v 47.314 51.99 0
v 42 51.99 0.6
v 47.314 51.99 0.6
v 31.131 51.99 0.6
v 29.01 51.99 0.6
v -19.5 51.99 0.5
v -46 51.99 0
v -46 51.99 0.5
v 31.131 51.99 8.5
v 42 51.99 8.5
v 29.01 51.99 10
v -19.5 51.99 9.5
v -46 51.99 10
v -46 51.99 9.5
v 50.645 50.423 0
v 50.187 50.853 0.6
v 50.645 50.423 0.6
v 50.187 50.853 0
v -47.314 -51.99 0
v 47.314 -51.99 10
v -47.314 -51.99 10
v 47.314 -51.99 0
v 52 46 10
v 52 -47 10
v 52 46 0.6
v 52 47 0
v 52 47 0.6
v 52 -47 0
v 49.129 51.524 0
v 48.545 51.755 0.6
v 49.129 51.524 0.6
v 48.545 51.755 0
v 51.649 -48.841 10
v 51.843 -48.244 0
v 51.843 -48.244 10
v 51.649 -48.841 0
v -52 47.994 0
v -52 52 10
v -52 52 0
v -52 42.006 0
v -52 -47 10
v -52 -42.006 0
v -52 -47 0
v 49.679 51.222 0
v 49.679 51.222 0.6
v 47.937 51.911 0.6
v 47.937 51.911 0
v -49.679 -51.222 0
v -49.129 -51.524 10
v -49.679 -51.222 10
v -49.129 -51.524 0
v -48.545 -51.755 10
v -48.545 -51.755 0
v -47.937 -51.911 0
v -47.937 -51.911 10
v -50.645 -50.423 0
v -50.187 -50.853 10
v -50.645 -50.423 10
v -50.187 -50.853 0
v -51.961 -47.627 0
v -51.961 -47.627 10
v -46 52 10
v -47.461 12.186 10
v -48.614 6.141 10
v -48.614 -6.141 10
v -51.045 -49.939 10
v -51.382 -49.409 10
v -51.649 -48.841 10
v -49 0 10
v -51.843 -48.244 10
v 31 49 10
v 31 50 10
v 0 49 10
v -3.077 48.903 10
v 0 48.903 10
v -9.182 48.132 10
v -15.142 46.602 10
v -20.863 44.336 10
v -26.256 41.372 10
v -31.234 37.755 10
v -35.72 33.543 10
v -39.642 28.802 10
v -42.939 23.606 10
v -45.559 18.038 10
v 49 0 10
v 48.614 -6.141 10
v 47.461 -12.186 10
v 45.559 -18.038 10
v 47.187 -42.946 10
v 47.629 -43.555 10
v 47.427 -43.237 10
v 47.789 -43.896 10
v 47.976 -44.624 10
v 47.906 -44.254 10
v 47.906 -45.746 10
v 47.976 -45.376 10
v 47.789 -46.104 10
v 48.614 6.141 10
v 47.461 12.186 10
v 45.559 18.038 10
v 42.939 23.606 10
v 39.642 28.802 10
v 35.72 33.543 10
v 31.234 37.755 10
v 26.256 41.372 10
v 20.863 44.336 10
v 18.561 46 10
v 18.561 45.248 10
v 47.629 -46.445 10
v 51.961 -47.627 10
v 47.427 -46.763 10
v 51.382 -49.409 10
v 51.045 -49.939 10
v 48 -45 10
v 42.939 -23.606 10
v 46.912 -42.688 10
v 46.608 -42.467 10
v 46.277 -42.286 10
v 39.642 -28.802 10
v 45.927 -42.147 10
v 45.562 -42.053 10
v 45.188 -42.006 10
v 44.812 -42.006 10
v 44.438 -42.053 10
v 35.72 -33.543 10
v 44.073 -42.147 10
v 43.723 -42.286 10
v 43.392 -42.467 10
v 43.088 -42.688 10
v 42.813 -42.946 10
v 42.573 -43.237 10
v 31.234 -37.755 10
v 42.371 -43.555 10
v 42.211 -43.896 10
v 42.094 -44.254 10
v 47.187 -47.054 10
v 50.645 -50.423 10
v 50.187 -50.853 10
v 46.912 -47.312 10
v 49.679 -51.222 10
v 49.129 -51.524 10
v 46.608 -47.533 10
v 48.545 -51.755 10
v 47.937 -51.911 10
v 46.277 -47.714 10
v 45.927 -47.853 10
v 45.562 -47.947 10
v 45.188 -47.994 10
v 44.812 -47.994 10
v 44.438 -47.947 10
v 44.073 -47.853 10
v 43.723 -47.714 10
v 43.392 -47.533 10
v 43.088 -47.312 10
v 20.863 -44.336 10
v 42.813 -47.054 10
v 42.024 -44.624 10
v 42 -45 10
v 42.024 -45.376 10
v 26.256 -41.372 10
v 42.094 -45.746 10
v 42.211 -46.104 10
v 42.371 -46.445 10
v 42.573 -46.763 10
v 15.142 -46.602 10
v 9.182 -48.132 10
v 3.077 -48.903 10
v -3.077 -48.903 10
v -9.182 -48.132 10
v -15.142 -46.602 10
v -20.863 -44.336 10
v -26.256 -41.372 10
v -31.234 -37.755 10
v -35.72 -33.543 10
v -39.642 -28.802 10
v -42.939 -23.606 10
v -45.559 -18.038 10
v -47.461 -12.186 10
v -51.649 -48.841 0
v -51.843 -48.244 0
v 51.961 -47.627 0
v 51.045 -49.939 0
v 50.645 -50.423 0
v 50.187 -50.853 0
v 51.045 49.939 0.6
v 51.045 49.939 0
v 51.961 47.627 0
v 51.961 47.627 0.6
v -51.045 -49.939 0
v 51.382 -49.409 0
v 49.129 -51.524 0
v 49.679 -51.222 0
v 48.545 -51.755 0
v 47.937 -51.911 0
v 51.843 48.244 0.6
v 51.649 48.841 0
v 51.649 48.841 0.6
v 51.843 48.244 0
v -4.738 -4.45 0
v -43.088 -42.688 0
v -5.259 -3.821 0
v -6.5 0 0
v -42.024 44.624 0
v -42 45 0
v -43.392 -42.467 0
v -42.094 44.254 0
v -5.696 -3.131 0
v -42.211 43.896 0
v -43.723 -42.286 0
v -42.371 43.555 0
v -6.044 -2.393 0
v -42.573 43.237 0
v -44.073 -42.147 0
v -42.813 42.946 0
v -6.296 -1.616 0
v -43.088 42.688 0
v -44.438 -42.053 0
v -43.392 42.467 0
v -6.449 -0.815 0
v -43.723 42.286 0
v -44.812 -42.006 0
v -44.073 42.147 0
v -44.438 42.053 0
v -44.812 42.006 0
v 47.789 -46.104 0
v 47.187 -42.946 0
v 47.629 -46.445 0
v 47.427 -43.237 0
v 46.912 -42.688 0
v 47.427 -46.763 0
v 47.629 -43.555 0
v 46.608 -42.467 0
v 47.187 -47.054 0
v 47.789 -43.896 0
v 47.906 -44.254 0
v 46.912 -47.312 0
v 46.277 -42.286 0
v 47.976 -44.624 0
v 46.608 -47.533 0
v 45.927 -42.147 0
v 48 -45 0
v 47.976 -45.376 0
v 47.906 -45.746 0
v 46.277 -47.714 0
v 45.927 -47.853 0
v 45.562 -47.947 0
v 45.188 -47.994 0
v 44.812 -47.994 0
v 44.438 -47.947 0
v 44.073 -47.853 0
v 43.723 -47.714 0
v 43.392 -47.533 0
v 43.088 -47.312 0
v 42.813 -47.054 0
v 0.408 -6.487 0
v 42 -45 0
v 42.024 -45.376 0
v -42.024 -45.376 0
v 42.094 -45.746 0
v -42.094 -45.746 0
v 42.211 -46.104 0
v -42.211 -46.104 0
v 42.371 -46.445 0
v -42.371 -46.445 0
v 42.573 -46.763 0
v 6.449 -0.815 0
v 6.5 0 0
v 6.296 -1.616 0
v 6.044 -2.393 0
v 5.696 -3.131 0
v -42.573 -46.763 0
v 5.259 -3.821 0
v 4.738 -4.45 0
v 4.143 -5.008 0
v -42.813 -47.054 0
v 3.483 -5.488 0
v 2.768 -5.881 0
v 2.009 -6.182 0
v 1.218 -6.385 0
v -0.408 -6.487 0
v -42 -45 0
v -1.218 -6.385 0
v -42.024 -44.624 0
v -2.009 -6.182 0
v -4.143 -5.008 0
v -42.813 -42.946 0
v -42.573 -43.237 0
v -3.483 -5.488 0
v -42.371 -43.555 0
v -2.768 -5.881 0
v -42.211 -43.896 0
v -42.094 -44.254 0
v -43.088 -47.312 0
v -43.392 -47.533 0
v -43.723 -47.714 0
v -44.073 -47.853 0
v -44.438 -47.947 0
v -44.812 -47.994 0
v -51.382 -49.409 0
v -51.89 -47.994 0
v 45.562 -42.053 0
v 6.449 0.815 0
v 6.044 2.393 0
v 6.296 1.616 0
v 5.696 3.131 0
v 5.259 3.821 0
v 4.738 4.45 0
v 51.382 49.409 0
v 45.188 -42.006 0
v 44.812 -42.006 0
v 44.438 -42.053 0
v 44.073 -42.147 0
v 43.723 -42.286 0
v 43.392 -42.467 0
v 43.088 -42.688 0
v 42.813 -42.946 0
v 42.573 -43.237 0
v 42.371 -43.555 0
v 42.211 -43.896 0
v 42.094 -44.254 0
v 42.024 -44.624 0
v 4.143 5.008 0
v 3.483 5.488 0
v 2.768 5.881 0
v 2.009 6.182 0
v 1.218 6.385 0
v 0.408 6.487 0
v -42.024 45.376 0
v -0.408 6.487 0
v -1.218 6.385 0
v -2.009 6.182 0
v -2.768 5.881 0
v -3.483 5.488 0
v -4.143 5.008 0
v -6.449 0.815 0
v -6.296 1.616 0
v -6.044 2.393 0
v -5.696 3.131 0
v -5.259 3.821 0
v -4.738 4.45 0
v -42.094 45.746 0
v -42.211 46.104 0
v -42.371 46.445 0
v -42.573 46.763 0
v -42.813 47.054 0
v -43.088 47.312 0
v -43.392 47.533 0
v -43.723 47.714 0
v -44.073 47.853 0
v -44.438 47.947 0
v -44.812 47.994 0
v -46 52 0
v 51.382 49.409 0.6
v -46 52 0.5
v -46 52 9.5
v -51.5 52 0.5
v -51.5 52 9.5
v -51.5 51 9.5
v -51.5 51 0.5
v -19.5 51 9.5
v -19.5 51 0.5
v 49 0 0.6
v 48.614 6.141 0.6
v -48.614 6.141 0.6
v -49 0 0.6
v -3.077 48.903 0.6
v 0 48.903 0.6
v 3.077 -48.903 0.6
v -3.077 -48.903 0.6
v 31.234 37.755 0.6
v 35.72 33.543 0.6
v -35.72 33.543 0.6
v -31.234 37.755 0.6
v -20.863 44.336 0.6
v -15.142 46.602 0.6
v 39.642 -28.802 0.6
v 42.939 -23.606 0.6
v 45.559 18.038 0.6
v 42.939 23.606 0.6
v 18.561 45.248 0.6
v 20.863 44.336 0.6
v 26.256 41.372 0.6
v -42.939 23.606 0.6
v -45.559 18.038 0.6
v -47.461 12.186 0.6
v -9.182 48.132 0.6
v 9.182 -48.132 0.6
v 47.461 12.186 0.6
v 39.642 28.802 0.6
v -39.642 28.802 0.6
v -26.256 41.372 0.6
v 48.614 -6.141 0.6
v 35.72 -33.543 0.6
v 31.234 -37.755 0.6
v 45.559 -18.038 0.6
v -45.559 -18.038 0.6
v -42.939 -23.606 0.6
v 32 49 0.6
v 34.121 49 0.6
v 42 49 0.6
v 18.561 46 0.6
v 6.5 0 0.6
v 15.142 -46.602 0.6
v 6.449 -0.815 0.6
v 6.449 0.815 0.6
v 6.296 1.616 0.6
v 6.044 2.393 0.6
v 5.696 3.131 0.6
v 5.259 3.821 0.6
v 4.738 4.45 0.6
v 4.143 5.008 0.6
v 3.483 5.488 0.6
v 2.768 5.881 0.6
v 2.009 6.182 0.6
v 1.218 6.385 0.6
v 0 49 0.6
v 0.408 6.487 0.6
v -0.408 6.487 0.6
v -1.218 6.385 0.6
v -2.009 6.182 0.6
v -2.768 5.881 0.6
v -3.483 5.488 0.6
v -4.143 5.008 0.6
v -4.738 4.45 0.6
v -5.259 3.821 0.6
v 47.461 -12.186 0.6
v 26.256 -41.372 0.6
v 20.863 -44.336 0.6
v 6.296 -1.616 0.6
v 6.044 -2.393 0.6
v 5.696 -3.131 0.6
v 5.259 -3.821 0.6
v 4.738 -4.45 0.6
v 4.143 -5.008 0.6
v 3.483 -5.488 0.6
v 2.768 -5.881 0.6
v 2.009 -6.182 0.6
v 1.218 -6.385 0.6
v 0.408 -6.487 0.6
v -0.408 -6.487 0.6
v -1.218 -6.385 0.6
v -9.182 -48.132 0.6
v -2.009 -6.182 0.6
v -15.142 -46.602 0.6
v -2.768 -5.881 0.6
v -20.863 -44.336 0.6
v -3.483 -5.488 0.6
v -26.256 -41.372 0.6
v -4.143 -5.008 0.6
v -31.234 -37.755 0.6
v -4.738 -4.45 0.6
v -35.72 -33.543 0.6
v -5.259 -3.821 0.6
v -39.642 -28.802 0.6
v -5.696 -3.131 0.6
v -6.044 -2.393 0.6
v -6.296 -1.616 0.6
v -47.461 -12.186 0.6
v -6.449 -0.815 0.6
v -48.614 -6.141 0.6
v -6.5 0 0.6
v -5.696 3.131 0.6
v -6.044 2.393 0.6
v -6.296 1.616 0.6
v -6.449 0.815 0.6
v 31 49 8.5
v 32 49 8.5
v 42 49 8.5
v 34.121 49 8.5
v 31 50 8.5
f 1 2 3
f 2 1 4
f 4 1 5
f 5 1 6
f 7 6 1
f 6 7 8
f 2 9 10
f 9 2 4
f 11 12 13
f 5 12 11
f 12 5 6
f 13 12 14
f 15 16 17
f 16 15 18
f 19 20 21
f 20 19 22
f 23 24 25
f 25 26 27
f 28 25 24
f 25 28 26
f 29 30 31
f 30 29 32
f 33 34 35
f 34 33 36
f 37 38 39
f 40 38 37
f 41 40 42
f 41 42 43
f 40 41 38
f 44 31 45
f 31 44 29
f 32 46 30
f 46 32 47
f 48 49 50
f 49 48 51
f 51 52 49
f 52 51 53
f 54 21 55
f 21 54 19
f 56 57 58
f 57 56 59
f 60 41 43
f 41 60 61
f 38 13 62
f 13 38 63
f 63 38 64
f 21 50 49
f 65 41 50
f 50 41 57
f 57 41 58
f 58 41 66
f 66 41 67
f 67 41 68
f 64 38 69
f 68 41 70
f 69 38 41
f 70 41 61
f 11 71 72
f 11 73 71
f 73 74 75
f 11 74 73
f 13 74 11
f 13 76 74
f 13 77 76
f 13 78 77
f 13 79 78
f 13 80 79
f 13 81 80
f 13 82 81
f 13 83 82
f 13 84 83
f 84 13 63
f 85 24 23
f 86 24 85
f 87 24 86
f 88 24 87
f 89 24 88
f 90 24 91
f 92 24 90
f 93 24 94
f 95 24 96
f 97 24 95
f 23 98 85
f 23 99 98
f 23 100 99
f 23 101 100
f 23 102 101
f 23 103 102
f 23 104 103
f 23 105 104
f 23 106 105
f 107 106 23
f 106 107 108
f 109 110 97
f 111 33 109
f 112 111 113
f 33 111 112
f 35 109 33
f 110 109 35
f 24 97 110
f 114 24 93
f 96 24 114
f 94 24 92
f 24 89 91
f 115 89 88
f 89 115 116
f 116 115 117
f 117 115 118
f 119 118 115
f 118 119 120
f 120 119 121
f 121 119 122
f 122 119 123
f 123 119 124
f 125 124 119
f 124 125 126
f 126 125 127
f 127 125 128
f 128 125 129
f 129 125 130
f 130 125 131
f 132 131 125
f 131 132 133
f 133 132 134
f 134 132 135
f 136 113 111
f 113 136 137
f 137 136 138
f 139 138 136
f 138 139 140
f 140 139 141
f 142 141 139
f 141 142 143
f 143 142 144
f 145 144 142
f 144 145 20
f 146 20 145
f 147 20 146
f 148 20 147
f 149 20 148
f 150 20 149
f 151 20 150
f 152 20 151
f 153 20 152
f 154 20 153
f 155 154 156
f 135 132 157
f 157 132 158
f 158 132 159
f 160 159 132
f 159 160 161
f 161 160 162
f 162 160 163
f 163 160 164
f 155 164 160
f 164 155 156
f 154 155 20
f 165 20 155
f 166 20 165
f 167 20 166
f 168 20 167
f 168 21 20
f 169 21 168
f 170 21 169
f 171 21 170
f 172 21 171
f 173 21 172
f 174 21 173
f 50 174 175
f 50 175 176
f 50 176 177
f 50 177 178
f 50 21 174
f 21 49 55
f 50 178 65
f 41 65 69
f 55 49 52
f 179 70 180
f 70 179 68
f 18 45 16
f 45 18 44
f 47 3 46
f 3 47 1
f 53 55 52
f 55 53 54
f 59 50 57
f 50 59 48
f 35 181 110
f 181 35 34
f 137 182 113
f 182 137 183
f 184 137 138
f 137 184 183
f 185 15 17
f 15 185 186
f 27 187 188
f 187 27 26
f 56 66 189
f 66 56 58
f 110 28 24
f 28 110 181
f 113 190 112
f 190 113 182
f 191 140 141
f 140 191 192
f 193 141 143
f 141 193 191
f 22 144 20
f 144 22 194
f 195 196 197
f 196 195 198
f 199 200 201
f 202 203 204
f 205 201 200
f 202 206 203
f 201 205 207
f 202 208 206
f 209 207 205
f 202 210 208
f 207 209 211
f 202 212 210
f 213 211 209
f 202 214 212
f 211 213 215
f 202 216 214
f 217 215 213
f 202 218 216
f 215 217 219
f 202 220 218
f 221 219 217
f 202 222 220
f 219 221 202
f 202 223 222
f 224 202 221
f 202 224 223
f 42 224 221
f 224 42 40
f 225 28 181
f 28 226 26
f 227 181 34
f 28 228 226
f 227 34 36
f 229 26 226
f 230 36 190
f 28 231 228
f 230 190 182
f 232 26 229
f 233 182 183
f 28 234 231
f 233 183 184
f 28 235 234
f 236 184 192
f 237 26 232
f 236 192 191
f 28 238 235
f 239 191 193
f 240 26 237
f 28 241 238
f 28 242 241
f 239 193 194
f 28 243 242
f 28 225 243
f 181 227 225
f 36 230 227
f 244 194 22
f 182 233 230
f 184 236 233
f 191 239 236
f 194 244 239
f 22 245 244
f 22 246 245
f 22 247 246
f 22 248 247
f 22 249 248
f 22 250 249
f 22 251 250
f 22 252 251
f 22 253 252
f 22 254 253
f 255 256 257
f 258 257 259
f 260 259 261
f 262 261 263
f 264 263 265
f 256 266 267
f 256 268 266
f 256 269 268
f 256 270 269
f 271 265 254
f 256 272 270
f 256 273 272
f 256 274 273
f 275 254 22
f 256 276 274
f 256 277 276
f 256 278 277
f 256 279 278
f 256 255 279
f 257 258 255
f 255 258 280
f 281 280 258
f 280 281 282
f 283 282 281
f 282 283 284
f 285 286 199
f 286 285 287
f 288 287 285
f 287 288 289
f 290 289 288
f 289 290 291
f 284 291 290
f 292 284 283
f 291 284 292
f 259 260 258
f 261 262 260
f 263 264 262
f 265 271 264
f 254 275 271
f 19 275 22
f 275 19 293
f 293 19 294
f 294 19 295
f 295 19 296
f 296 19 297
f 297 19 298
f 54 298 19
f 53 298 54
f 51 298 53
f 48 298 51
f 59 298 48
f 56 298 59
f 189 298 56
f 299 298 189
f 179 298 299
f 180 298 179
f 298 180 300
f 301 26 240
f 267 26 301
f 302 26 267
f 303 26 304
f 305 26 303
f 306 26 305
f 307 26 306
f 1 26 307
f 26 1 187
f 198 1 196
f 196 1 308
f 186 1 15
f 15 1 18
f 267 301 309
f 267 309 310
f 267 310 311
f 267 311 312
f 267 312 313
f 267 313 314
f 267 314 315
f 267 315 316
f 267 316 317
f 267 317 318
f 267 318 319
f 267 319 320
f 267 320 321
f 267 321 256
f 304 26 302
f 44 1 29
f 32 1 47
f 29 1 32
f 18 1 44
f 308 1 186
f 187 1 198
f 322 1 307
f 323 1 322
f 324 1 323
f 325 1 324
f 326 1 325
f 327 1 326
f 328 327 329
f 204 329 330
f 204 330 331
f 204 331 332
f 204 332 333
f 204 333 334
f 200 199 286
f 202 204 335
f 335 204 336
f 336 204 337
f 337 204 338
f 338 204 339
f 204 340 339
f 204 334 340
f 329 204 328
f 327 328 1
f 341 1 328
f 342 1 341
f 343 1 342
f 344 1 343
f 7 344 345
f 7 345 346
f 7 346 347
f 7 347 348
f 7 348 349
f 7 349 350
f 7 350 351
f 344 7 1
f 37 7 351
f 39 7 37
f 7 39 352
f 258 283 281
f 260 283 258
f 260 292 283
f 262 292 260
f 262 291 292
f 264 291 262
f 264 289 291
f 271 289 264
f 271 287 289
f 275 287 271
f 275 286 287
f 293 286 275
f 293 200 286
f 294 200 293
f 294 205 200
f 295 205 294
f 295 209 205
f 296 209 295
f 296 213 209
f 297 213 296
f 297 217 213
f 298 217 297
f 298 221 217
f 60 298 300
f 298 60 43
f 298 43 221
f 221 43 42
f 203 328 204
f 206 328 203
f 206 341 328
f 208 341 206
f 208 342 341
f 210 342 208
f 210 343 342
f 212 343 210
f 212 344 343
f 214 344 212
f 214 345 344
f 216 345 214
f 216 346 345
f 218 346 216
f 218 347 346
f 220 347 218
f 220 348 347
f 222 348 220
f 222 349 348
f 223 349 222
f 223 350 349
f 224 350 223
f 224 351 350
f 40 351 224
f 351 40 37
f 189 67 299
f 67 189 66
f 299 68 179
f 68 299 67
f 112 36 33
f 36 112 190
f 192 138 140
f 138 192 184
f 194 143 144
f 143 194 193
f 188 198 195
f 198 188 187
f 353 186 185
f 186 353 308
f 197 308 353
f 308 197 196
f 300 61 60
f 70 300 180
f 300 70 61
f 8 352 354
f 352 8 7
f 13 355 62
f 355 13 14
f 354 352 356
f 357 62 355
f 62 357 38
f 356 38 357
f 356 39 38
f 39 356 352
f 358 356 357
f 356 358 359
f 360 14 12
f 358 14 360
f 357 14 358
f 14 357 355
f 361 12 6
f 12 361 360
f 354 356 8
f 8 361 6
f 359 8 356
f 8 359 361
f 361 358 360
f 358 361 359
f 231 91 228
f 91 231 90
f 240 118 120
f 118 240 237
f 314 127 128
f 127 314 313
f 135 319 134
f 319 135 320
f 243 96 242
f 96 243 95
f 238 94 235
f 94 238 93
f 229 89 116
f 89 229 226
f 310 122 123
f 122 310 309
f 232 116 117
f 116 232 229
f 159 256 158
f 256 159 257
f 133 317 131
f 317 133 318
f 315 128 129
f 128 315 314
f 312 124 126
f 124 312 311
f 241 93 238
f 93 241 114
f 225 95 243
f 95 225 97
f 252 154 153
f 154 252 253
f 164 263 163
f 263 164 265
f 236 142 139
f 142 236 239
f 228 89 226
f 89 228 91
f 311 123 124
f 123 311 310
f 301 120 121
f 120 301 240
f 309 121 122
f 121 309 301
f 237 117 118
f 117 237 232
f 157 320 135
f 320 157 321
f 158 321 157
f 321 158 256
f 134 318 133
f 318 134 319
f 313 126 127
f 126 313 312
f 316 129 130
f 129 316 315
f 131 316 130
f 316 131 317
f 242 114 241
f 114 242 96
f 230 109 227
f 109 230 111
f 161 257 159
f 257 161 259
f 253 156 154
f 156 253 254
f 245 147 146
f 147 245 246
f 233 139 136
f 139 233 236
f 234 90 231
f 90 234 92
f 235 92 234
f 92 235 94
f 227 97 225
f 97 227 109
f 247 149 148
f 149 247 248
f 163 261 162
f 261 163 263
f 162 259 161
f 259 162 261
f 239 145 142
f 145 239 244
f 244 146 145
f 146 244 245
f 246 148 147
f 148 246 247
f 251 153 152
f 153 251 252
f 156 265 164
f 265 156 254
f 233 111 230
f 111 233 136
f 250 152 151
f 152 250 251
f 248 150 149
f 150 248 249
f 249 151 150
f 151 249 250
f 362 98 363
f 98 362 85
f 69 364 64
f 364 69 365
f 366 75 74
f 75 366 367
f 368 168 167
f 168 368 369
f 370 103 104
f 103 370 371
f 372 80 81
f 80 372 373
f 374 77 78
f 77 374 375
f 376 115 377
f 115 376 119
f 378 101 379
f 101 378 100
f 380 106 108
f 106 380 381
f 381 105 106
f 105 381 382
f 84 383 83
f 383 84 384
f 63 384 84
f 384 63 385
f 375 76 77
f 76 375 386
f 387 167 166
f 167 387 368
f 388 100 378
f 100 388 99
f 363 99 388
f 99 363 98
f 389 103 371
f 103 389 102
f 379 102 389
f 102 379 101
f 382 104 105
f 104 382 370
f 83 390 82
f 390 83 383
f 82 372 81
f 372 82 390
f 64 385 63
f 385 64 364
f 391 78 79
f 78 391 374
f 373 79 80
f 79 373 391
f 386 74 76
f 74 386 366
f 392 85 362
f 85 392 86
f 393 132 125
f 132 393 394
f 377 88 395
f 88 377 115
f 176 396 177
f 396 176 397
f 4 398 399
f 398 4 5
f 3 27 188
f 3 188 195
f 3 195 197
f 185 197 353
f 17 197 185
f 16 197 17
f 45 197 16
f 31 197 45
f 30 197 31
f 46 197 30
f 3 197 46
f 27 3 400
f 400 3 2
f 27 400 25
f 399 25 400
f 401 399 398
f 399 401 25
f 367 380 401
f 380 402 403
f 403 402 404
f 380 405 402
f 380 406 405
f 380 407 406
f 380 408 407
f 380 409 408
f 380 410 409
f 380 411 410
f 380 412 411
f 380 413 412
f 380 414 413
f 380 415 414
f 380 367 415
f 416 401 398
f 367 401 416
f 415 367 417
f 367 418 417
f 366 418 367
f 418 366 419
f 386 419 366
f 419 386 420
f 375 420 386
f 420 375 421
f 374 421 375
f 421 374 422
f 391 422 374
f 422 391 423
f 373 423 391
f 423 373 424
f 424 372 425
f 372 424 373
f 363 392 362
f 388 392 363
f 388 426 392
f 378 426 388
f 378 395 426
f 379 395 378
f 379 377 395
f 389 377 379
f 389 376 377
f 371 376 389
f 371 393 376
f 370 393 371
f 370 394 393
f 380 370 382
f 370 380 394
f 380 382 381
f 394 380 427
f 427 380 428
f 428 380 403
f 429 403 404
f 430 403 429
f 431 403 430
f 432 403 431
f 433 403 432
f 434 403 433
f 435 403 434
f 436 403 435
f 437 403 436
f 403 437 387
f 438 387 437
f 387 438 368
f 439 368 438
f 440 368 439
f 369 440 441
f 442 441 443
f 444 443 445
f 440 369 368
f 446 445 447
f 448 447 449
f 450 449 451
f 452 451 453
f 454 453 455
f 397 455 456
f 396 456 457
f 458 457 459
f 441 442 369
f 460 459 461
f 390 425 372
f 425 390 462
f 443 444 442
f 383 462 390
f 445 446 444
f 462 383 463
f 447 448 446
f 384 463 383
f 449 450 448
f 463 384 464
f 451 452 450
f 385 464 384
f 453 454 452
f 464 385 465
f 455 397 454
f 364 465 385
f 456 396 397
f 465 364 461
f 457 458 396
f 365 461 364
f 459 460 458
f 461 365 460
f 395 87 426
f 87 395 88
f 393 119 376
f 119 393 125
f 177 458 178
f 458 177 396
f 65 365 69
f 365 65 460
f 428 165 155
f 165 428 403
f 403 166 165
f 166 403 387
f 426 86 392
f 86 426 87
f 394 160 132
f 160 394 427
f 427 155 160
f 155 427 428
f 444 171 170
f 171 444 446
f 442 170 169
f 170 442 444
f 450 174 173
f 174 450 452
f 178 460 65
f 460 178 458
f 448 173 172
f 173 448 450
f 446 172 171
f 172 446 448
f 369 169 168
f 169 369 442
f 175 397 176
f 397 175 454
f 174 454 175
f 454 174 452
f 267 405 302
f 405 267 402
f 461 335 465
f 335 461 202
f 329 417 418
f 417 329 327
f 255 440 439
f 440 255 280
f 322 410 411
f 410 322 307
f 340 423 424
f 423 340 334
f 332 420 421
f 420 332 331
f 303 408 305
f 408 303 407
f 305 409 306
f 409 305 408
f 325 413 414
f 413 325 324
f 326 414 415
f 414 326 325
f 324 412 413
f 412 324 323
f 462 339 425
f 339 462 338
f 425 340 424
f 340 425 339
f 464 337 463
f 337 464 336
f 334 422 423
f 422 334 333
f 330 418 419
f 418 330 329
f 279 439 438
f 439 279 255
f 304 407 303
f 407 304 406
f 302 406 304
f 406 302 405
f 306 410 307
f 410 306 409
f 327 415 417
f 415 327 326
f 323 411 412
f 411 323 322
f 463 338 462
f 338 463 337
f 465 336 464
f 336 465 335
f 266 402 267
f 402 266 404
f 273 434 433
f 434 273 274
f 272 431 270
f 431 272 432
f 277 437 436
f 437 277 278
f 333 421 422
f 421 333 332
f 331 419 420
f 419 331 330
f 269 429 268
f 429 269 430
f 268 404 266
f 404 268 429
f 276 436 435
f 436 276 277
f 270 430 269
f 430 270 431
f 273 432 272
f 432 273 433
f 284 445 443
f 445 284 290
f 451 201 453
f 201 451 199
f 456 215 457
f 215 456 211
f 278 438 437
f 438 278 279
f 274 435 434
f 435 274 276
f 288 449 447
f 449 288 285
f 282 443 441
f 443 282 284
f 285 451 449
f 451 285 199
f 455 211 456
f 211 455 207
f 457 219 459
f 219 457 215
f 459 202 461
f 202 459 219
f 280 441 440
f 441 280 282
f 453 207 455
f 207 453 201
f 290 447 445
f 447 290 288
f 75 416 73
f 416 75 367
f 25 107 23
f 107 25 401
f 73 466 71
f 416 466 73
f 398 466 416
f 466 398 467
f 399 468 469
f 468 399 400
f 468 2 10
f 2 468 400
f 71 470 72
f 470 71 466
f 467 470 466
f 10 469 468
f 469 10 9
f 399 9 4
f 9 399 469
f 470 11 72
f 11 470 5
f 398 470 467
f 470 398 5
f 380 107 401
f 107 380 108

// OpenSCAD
$fn = 50;


difference() {
	union() {
		hull() {
			translate(v = [-47.0000000000, 47.0000000000, 0]) {
				cylinder(h = 10, r = 5);
			}
			translate(v = [47.0000000000, 47.0000000000, 0]) {
				cylinder(h = 10, r = 5);
			}
			translate(v = [-47.0000000000, -47.0000000000, 0]) {
				cylinder(h = 10, r = 5);
			}
			translate(v = [47.0000000000, -47.0000000000, 0]) {
				cylinder(h = 10, r = 5);
			}
		}
		translate(v = [-52.0000000000, 46.0000000000, 0]) {
			cube(size = [6, 6, 10]);
		}
	}
	union() {
		translate(v = [-52.5000000000, -45.0000000000, -250.0000000000]) {
			rotate(a = [0, 0, 0]) {
				difference() {
					union() {
						hull() {
							translate(v = [7.5000000000, 0, 0]) {
								cylinder(h = 250, r = 3.0000000000, r1 = 3.0000000000, r2 = 3.0000000000);
							}
							translate(v = [-7.5000000000, 0, 0]) {
								cylinder(h = 250, r = 3.0000000000, r1 = 3.0000000000, r2 = 3.0000000000);
							}
						}
					}
					union();
				}
			}
		}
		translate(v = [-52.5000000000, 45.0000000000, -250.0000000000]) {
			rotate(a = [0, 0, 0]) {
				difference() {
					union() {
						hull() {
							translate(v = [7.5000000000, 0, 0]) {
								cylinder(h = 250, r = 3.0000000000, r1 = 3.0000000000, r2 = 3.0000000000);
							}
							translate(v = [-7.5000000000, 0, 0]) {
								cylinder(h = 250, r = 3.0000000000, r1 = 3.0000000000, r2 = 3.0000000000);
							}
						}
					}
					union();
				}
			}
		}
		translate(v = [-51.5000000000, 51.0000000000, 0.5000000000]) {
			cube(size = [32, 1, 9.0000000000]);
		}
		translate(v = [45.0000000000, -45.0000000000, -50.0000000000]) {
			cylinder(h = 100, r = 3.0000000000);
		}
		translate(v = [0, 0, 0.6000000000]) {
			cylinder(h = 12.4000000000, r = 49.0000000000);
		}
		translate(v = [0, 0, -5.0000000000]) {
			cylinder(h = 10, r = 6.5000000000);
		}
		translate(v = [0.0000000000, 46.0000000000, 0.6000000000]) {
			cube(size = [52.0000000000, 3, 12.4000000000]);
		}
		translate(v = [42.0000000000, 46.0000000000, 0.6000000000]) {
			cube(size = [10, 6, 12.4000000000]);
		}
		translate(v = [31.0000000000, 46.0000000000, 8.5000000000]) {
			cube(size = [21, 6, 1.5000000000]);
		}
		translate(v = [28.2500000000, 52.7500000000, 0.6000000000]) {
			rotate(a = [0, 0, -45]) {
				cube(size = [7.5000000000, 1.5000000000, 12.4000000000]);
			}
		}
		translate(v = [11.0610000000, 44.0000000000, 0.6000000000]) {
			cube(size = [7.5000000000, 2, 9.4000000000]);
		}
	}
}
